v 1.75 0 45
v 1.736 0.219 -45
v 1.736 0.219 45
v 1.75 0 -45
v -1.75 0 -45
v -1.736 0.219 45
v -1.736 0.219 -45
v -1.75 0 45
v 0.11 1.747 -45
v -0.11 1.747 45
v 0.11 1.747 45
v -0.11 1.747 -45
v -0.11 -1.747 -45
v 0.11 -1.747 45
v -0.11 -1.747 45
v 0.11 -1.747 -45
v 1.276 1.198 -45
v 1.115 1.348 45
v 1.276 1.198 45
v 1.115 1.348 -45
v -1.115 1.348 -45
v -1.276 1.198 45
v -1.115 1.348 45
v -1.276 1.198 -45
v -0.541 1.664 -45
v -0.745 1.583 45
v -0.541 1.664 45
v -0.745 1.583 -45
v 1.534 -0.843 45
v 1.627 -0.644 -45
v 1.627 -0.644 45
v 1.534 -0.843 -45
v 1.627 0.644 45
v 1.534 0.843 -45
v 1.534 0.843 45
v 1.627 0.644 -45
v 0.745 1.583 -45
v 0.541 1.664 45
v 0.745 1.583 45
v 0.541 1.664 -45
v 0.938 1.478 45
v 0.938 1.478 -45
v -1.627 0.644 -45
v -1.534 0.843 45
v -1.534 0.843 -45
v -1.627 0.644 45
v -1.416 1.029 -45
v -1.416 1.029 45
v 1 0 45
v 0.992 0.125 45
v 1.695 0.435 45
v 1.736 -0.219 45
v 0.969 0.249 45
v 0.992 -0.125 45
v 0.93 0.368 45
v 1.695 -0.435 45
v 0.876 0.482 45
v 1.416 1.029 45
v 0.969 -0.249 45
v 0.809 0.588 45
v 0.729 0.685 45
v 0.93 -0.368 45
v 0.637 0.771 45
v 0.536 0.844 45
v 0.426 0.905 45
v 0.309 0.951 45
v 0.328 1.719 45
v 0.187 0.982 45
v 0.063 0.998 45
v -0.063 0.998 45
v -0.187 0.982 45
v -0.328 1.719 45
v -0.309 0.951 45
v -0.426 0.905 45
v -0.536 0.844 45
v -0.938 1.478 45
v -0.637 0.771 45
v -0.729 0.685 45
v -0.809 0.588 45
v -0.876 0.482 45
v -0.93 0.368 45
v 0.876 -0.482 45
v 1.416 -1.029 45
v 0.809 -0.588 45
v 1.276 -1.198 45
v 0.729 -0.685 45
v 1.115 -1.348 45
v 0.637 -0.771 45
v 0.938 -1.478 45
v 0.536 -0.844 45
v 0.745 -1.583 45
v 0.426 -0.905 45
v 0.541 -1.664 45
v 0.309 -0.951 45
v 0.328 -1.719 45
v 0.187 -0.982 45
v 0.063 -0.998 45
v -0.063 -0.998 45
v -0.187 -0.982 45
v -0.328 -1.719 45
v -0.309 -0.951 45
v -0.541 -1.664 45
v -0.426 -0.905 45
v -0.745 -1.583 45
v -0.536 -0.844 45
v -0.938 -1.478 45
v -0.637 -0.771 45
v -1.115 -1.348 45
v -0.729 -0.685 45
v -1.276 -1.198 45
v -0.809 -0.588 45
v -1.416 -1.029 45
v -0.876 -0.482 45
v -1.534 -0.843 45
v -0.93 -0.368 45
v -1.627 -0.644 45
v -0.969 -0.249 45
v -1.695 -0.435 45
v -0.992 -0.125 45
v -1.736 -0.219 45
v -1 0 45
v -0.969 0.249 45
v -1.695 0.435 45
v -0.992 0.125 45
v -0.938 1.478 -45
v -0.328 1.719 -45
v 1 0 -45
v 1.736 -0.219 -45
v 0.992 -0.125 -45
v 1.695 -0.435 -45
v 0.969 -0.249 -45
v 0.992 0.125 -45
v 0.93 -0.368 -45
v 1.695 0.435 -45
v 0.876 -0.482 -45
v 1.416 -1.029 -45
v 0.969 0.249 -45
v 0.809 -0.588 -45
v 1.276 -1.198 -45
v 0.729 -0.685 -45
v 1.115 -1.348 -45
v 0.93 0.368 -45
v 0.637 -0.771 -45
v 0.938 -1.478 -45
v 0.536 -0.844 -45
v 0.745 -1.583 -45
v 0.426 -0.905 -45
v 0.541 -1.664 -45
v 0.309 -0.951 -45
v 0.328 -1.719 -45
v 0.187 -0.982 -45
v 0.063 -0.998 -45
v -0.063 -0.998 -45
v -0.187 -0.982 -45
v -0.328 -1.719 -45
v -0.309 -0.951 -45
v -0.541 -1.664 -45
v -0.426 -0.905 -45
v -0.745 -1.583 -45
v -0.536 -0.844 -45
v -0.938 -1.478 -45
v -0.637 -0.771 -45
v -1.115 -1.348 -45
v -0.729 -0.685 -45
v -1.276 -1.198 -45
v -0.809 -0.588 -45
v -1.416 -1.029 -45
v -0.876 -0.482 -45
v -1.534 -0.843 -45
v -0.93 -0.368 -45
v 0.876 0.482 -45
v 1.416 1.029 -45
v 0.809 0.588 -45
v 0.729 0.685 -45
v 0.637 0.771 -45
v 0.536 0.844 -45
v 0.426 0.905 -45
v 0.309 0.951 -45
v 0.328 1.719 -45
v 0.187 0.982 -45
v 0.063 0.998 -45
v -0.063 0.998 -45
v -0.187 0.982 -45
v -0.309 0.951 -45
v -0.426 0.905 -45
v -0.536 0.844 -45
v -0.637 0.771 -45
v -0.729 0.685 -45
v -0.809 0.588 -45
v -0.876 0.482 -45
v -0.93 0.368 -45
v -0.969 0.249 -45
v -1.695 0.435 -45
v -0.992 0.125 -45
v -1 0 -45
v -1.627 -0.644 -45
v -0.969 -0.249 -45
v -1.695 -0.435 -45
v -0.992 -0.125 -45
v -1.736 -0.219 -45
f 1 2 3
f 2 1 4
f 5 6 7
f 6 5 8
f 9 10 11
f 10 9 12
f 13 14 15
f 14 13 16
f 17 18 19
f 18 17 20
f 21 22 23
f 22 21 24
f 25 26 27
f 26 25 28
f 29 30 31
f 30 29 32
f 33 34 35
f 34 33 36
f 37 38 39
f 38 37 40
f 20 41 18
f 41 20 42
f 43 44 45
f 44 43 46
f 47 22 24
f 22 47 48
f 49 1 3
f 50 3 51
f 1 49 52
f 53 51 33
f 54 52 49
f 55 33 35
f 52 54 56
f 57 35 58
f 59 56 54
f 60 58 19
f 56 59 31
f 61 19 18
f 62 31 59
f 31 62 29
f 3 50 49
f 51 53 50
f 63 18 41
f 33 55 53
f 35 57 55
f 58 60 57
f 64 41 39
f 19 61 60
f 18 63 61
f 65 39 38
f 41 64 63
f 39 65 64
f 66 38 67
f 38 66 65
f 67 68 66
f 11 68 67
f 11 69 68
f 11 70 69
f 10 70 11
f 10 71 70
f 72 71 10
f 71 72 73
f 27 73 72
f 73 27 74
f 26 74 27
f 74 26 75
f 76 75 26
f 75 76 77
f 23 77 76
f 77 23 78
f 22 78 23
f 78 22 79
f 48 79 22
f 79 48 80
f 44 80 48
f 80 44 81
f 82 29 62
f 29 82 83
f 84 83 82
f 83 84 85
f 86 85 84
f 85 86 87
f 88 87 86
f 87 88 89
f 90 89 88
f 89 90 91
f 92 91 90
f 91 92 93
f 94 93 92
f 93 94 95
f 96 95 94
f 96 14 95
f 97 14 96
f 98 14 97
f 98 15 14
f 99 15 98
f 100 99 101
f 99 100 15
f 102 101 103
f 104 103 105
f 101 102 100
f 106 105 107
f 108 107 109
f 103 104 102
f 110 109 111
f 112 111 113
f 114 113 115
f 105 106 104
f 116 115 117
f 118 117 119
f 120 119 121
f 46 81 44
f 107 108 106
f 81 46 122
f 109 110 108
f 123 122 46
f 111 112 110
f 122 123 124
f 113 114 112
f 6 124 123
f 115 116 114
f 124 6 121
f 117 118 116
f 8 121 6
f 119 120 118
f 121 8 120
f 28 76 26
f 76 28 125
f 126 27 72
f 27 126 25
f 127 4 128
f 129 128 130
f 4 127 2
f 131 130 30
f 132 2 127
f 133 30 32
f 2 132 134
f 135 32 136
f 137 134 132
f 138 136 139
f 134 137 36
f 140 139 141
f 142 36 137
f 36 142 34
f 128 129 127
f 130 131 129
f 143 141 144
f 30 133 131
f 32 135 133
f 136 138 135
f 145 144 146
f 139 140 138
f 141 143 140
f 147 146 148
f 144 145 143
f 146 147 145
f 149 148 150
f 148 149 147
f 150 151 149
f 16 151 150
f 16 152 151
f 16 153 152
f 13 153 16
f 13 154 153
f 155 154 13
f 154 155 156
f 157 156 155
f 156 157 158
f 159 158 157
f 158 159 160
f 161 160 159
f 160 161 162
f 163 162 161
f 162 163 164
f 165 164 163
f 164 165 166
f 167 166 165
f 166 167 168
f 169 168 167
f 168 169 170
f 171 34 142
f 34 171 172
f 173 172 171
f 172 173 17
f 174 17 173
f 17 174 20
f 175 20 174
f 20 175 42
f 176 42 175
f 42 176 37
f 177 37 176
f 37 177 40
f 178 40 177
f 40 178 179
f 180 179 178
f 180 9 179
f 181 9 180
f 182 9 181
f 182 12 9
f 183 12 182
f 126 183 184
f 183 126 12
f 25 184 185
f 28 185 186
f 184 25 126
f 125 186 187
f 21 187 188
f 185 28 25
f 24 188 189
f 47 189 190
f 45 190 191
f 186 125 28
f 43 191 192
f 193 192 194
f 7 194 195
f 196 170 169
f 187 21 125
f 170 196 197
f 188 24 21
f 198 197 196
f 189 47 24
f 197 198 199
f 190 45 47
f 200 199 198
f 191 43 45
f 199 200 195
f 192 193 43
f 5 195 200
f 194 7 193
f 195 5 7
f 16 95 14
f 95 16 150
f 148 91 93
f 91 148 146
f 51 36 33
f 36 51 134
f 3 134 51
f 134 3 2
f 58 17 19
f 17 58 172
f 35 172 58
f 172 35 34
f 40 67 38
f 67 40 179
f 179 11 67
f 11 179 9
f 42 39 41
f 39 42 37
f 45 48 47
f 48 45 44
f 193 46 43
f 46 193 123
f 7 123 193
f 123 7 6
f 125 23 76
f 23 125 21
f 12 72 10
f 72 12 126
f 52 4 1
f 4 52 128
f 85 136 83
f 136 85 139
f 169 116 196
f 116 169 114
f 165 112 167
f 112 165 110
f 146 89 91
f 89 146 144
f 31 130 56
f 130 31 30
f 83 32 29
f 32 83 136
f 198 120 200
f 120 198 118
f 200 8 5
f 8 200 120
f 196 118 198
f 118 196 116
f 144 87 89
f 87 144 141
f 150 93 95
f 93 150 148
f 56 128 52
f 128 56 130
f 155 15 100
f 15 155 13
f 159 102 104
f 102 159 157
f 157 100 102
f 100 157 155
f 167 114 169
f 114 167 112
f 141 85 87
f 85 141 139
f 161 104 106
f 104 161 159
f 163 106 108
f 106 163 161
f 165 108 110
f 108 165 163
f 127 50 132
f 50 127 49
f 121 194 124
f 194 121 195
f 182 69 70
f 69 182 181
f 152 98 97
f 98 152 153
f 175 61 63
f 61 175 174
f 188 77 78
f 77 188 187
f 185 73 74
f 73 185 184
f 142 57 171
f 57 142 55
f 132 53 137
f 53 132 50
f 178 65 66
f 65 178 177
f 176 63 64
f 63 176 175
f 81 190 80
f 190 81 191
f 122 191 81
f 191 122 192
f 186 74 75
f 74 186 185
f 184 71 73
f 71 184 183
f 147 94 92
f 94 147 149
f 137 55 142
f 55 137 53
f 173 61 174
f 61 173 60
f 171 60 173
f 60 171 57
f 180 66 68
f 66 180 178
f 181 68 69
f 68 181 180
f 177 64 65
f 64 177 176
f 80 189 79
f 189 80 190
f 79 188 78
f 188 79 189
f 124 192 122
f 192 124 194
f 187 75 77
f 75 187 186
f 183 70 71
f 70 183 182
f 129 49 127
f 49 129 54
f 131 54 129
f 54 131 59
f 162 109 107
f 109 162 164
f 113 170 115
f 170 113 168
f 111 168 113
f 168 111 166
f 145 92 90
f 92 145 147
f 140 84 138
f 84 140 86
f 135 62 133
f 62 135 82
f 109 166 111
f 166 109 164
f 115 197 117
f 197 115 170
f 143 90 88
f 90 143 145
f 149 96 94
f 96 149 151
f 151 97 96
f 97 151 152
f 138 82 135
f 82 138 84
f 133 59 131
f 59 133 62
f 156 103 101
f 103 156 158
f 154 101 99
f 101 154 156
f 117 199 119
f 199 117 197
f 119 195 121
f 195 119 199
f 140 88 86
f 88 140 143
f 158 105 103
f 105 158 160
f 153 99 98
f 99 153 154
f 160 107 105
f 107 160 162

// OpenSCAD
$fn = 50;


difference() {
	union() {
		translate(v = [0, 0, -45.0000000000]) {
			cylinder(h = 90, r = 1.7500000000);
		}
	}
	union() {
		translate(v = [0, 0, -100.0000000000]) {
			cylinder(h = 200, r = 1.0000000000);
		}
	}
}
